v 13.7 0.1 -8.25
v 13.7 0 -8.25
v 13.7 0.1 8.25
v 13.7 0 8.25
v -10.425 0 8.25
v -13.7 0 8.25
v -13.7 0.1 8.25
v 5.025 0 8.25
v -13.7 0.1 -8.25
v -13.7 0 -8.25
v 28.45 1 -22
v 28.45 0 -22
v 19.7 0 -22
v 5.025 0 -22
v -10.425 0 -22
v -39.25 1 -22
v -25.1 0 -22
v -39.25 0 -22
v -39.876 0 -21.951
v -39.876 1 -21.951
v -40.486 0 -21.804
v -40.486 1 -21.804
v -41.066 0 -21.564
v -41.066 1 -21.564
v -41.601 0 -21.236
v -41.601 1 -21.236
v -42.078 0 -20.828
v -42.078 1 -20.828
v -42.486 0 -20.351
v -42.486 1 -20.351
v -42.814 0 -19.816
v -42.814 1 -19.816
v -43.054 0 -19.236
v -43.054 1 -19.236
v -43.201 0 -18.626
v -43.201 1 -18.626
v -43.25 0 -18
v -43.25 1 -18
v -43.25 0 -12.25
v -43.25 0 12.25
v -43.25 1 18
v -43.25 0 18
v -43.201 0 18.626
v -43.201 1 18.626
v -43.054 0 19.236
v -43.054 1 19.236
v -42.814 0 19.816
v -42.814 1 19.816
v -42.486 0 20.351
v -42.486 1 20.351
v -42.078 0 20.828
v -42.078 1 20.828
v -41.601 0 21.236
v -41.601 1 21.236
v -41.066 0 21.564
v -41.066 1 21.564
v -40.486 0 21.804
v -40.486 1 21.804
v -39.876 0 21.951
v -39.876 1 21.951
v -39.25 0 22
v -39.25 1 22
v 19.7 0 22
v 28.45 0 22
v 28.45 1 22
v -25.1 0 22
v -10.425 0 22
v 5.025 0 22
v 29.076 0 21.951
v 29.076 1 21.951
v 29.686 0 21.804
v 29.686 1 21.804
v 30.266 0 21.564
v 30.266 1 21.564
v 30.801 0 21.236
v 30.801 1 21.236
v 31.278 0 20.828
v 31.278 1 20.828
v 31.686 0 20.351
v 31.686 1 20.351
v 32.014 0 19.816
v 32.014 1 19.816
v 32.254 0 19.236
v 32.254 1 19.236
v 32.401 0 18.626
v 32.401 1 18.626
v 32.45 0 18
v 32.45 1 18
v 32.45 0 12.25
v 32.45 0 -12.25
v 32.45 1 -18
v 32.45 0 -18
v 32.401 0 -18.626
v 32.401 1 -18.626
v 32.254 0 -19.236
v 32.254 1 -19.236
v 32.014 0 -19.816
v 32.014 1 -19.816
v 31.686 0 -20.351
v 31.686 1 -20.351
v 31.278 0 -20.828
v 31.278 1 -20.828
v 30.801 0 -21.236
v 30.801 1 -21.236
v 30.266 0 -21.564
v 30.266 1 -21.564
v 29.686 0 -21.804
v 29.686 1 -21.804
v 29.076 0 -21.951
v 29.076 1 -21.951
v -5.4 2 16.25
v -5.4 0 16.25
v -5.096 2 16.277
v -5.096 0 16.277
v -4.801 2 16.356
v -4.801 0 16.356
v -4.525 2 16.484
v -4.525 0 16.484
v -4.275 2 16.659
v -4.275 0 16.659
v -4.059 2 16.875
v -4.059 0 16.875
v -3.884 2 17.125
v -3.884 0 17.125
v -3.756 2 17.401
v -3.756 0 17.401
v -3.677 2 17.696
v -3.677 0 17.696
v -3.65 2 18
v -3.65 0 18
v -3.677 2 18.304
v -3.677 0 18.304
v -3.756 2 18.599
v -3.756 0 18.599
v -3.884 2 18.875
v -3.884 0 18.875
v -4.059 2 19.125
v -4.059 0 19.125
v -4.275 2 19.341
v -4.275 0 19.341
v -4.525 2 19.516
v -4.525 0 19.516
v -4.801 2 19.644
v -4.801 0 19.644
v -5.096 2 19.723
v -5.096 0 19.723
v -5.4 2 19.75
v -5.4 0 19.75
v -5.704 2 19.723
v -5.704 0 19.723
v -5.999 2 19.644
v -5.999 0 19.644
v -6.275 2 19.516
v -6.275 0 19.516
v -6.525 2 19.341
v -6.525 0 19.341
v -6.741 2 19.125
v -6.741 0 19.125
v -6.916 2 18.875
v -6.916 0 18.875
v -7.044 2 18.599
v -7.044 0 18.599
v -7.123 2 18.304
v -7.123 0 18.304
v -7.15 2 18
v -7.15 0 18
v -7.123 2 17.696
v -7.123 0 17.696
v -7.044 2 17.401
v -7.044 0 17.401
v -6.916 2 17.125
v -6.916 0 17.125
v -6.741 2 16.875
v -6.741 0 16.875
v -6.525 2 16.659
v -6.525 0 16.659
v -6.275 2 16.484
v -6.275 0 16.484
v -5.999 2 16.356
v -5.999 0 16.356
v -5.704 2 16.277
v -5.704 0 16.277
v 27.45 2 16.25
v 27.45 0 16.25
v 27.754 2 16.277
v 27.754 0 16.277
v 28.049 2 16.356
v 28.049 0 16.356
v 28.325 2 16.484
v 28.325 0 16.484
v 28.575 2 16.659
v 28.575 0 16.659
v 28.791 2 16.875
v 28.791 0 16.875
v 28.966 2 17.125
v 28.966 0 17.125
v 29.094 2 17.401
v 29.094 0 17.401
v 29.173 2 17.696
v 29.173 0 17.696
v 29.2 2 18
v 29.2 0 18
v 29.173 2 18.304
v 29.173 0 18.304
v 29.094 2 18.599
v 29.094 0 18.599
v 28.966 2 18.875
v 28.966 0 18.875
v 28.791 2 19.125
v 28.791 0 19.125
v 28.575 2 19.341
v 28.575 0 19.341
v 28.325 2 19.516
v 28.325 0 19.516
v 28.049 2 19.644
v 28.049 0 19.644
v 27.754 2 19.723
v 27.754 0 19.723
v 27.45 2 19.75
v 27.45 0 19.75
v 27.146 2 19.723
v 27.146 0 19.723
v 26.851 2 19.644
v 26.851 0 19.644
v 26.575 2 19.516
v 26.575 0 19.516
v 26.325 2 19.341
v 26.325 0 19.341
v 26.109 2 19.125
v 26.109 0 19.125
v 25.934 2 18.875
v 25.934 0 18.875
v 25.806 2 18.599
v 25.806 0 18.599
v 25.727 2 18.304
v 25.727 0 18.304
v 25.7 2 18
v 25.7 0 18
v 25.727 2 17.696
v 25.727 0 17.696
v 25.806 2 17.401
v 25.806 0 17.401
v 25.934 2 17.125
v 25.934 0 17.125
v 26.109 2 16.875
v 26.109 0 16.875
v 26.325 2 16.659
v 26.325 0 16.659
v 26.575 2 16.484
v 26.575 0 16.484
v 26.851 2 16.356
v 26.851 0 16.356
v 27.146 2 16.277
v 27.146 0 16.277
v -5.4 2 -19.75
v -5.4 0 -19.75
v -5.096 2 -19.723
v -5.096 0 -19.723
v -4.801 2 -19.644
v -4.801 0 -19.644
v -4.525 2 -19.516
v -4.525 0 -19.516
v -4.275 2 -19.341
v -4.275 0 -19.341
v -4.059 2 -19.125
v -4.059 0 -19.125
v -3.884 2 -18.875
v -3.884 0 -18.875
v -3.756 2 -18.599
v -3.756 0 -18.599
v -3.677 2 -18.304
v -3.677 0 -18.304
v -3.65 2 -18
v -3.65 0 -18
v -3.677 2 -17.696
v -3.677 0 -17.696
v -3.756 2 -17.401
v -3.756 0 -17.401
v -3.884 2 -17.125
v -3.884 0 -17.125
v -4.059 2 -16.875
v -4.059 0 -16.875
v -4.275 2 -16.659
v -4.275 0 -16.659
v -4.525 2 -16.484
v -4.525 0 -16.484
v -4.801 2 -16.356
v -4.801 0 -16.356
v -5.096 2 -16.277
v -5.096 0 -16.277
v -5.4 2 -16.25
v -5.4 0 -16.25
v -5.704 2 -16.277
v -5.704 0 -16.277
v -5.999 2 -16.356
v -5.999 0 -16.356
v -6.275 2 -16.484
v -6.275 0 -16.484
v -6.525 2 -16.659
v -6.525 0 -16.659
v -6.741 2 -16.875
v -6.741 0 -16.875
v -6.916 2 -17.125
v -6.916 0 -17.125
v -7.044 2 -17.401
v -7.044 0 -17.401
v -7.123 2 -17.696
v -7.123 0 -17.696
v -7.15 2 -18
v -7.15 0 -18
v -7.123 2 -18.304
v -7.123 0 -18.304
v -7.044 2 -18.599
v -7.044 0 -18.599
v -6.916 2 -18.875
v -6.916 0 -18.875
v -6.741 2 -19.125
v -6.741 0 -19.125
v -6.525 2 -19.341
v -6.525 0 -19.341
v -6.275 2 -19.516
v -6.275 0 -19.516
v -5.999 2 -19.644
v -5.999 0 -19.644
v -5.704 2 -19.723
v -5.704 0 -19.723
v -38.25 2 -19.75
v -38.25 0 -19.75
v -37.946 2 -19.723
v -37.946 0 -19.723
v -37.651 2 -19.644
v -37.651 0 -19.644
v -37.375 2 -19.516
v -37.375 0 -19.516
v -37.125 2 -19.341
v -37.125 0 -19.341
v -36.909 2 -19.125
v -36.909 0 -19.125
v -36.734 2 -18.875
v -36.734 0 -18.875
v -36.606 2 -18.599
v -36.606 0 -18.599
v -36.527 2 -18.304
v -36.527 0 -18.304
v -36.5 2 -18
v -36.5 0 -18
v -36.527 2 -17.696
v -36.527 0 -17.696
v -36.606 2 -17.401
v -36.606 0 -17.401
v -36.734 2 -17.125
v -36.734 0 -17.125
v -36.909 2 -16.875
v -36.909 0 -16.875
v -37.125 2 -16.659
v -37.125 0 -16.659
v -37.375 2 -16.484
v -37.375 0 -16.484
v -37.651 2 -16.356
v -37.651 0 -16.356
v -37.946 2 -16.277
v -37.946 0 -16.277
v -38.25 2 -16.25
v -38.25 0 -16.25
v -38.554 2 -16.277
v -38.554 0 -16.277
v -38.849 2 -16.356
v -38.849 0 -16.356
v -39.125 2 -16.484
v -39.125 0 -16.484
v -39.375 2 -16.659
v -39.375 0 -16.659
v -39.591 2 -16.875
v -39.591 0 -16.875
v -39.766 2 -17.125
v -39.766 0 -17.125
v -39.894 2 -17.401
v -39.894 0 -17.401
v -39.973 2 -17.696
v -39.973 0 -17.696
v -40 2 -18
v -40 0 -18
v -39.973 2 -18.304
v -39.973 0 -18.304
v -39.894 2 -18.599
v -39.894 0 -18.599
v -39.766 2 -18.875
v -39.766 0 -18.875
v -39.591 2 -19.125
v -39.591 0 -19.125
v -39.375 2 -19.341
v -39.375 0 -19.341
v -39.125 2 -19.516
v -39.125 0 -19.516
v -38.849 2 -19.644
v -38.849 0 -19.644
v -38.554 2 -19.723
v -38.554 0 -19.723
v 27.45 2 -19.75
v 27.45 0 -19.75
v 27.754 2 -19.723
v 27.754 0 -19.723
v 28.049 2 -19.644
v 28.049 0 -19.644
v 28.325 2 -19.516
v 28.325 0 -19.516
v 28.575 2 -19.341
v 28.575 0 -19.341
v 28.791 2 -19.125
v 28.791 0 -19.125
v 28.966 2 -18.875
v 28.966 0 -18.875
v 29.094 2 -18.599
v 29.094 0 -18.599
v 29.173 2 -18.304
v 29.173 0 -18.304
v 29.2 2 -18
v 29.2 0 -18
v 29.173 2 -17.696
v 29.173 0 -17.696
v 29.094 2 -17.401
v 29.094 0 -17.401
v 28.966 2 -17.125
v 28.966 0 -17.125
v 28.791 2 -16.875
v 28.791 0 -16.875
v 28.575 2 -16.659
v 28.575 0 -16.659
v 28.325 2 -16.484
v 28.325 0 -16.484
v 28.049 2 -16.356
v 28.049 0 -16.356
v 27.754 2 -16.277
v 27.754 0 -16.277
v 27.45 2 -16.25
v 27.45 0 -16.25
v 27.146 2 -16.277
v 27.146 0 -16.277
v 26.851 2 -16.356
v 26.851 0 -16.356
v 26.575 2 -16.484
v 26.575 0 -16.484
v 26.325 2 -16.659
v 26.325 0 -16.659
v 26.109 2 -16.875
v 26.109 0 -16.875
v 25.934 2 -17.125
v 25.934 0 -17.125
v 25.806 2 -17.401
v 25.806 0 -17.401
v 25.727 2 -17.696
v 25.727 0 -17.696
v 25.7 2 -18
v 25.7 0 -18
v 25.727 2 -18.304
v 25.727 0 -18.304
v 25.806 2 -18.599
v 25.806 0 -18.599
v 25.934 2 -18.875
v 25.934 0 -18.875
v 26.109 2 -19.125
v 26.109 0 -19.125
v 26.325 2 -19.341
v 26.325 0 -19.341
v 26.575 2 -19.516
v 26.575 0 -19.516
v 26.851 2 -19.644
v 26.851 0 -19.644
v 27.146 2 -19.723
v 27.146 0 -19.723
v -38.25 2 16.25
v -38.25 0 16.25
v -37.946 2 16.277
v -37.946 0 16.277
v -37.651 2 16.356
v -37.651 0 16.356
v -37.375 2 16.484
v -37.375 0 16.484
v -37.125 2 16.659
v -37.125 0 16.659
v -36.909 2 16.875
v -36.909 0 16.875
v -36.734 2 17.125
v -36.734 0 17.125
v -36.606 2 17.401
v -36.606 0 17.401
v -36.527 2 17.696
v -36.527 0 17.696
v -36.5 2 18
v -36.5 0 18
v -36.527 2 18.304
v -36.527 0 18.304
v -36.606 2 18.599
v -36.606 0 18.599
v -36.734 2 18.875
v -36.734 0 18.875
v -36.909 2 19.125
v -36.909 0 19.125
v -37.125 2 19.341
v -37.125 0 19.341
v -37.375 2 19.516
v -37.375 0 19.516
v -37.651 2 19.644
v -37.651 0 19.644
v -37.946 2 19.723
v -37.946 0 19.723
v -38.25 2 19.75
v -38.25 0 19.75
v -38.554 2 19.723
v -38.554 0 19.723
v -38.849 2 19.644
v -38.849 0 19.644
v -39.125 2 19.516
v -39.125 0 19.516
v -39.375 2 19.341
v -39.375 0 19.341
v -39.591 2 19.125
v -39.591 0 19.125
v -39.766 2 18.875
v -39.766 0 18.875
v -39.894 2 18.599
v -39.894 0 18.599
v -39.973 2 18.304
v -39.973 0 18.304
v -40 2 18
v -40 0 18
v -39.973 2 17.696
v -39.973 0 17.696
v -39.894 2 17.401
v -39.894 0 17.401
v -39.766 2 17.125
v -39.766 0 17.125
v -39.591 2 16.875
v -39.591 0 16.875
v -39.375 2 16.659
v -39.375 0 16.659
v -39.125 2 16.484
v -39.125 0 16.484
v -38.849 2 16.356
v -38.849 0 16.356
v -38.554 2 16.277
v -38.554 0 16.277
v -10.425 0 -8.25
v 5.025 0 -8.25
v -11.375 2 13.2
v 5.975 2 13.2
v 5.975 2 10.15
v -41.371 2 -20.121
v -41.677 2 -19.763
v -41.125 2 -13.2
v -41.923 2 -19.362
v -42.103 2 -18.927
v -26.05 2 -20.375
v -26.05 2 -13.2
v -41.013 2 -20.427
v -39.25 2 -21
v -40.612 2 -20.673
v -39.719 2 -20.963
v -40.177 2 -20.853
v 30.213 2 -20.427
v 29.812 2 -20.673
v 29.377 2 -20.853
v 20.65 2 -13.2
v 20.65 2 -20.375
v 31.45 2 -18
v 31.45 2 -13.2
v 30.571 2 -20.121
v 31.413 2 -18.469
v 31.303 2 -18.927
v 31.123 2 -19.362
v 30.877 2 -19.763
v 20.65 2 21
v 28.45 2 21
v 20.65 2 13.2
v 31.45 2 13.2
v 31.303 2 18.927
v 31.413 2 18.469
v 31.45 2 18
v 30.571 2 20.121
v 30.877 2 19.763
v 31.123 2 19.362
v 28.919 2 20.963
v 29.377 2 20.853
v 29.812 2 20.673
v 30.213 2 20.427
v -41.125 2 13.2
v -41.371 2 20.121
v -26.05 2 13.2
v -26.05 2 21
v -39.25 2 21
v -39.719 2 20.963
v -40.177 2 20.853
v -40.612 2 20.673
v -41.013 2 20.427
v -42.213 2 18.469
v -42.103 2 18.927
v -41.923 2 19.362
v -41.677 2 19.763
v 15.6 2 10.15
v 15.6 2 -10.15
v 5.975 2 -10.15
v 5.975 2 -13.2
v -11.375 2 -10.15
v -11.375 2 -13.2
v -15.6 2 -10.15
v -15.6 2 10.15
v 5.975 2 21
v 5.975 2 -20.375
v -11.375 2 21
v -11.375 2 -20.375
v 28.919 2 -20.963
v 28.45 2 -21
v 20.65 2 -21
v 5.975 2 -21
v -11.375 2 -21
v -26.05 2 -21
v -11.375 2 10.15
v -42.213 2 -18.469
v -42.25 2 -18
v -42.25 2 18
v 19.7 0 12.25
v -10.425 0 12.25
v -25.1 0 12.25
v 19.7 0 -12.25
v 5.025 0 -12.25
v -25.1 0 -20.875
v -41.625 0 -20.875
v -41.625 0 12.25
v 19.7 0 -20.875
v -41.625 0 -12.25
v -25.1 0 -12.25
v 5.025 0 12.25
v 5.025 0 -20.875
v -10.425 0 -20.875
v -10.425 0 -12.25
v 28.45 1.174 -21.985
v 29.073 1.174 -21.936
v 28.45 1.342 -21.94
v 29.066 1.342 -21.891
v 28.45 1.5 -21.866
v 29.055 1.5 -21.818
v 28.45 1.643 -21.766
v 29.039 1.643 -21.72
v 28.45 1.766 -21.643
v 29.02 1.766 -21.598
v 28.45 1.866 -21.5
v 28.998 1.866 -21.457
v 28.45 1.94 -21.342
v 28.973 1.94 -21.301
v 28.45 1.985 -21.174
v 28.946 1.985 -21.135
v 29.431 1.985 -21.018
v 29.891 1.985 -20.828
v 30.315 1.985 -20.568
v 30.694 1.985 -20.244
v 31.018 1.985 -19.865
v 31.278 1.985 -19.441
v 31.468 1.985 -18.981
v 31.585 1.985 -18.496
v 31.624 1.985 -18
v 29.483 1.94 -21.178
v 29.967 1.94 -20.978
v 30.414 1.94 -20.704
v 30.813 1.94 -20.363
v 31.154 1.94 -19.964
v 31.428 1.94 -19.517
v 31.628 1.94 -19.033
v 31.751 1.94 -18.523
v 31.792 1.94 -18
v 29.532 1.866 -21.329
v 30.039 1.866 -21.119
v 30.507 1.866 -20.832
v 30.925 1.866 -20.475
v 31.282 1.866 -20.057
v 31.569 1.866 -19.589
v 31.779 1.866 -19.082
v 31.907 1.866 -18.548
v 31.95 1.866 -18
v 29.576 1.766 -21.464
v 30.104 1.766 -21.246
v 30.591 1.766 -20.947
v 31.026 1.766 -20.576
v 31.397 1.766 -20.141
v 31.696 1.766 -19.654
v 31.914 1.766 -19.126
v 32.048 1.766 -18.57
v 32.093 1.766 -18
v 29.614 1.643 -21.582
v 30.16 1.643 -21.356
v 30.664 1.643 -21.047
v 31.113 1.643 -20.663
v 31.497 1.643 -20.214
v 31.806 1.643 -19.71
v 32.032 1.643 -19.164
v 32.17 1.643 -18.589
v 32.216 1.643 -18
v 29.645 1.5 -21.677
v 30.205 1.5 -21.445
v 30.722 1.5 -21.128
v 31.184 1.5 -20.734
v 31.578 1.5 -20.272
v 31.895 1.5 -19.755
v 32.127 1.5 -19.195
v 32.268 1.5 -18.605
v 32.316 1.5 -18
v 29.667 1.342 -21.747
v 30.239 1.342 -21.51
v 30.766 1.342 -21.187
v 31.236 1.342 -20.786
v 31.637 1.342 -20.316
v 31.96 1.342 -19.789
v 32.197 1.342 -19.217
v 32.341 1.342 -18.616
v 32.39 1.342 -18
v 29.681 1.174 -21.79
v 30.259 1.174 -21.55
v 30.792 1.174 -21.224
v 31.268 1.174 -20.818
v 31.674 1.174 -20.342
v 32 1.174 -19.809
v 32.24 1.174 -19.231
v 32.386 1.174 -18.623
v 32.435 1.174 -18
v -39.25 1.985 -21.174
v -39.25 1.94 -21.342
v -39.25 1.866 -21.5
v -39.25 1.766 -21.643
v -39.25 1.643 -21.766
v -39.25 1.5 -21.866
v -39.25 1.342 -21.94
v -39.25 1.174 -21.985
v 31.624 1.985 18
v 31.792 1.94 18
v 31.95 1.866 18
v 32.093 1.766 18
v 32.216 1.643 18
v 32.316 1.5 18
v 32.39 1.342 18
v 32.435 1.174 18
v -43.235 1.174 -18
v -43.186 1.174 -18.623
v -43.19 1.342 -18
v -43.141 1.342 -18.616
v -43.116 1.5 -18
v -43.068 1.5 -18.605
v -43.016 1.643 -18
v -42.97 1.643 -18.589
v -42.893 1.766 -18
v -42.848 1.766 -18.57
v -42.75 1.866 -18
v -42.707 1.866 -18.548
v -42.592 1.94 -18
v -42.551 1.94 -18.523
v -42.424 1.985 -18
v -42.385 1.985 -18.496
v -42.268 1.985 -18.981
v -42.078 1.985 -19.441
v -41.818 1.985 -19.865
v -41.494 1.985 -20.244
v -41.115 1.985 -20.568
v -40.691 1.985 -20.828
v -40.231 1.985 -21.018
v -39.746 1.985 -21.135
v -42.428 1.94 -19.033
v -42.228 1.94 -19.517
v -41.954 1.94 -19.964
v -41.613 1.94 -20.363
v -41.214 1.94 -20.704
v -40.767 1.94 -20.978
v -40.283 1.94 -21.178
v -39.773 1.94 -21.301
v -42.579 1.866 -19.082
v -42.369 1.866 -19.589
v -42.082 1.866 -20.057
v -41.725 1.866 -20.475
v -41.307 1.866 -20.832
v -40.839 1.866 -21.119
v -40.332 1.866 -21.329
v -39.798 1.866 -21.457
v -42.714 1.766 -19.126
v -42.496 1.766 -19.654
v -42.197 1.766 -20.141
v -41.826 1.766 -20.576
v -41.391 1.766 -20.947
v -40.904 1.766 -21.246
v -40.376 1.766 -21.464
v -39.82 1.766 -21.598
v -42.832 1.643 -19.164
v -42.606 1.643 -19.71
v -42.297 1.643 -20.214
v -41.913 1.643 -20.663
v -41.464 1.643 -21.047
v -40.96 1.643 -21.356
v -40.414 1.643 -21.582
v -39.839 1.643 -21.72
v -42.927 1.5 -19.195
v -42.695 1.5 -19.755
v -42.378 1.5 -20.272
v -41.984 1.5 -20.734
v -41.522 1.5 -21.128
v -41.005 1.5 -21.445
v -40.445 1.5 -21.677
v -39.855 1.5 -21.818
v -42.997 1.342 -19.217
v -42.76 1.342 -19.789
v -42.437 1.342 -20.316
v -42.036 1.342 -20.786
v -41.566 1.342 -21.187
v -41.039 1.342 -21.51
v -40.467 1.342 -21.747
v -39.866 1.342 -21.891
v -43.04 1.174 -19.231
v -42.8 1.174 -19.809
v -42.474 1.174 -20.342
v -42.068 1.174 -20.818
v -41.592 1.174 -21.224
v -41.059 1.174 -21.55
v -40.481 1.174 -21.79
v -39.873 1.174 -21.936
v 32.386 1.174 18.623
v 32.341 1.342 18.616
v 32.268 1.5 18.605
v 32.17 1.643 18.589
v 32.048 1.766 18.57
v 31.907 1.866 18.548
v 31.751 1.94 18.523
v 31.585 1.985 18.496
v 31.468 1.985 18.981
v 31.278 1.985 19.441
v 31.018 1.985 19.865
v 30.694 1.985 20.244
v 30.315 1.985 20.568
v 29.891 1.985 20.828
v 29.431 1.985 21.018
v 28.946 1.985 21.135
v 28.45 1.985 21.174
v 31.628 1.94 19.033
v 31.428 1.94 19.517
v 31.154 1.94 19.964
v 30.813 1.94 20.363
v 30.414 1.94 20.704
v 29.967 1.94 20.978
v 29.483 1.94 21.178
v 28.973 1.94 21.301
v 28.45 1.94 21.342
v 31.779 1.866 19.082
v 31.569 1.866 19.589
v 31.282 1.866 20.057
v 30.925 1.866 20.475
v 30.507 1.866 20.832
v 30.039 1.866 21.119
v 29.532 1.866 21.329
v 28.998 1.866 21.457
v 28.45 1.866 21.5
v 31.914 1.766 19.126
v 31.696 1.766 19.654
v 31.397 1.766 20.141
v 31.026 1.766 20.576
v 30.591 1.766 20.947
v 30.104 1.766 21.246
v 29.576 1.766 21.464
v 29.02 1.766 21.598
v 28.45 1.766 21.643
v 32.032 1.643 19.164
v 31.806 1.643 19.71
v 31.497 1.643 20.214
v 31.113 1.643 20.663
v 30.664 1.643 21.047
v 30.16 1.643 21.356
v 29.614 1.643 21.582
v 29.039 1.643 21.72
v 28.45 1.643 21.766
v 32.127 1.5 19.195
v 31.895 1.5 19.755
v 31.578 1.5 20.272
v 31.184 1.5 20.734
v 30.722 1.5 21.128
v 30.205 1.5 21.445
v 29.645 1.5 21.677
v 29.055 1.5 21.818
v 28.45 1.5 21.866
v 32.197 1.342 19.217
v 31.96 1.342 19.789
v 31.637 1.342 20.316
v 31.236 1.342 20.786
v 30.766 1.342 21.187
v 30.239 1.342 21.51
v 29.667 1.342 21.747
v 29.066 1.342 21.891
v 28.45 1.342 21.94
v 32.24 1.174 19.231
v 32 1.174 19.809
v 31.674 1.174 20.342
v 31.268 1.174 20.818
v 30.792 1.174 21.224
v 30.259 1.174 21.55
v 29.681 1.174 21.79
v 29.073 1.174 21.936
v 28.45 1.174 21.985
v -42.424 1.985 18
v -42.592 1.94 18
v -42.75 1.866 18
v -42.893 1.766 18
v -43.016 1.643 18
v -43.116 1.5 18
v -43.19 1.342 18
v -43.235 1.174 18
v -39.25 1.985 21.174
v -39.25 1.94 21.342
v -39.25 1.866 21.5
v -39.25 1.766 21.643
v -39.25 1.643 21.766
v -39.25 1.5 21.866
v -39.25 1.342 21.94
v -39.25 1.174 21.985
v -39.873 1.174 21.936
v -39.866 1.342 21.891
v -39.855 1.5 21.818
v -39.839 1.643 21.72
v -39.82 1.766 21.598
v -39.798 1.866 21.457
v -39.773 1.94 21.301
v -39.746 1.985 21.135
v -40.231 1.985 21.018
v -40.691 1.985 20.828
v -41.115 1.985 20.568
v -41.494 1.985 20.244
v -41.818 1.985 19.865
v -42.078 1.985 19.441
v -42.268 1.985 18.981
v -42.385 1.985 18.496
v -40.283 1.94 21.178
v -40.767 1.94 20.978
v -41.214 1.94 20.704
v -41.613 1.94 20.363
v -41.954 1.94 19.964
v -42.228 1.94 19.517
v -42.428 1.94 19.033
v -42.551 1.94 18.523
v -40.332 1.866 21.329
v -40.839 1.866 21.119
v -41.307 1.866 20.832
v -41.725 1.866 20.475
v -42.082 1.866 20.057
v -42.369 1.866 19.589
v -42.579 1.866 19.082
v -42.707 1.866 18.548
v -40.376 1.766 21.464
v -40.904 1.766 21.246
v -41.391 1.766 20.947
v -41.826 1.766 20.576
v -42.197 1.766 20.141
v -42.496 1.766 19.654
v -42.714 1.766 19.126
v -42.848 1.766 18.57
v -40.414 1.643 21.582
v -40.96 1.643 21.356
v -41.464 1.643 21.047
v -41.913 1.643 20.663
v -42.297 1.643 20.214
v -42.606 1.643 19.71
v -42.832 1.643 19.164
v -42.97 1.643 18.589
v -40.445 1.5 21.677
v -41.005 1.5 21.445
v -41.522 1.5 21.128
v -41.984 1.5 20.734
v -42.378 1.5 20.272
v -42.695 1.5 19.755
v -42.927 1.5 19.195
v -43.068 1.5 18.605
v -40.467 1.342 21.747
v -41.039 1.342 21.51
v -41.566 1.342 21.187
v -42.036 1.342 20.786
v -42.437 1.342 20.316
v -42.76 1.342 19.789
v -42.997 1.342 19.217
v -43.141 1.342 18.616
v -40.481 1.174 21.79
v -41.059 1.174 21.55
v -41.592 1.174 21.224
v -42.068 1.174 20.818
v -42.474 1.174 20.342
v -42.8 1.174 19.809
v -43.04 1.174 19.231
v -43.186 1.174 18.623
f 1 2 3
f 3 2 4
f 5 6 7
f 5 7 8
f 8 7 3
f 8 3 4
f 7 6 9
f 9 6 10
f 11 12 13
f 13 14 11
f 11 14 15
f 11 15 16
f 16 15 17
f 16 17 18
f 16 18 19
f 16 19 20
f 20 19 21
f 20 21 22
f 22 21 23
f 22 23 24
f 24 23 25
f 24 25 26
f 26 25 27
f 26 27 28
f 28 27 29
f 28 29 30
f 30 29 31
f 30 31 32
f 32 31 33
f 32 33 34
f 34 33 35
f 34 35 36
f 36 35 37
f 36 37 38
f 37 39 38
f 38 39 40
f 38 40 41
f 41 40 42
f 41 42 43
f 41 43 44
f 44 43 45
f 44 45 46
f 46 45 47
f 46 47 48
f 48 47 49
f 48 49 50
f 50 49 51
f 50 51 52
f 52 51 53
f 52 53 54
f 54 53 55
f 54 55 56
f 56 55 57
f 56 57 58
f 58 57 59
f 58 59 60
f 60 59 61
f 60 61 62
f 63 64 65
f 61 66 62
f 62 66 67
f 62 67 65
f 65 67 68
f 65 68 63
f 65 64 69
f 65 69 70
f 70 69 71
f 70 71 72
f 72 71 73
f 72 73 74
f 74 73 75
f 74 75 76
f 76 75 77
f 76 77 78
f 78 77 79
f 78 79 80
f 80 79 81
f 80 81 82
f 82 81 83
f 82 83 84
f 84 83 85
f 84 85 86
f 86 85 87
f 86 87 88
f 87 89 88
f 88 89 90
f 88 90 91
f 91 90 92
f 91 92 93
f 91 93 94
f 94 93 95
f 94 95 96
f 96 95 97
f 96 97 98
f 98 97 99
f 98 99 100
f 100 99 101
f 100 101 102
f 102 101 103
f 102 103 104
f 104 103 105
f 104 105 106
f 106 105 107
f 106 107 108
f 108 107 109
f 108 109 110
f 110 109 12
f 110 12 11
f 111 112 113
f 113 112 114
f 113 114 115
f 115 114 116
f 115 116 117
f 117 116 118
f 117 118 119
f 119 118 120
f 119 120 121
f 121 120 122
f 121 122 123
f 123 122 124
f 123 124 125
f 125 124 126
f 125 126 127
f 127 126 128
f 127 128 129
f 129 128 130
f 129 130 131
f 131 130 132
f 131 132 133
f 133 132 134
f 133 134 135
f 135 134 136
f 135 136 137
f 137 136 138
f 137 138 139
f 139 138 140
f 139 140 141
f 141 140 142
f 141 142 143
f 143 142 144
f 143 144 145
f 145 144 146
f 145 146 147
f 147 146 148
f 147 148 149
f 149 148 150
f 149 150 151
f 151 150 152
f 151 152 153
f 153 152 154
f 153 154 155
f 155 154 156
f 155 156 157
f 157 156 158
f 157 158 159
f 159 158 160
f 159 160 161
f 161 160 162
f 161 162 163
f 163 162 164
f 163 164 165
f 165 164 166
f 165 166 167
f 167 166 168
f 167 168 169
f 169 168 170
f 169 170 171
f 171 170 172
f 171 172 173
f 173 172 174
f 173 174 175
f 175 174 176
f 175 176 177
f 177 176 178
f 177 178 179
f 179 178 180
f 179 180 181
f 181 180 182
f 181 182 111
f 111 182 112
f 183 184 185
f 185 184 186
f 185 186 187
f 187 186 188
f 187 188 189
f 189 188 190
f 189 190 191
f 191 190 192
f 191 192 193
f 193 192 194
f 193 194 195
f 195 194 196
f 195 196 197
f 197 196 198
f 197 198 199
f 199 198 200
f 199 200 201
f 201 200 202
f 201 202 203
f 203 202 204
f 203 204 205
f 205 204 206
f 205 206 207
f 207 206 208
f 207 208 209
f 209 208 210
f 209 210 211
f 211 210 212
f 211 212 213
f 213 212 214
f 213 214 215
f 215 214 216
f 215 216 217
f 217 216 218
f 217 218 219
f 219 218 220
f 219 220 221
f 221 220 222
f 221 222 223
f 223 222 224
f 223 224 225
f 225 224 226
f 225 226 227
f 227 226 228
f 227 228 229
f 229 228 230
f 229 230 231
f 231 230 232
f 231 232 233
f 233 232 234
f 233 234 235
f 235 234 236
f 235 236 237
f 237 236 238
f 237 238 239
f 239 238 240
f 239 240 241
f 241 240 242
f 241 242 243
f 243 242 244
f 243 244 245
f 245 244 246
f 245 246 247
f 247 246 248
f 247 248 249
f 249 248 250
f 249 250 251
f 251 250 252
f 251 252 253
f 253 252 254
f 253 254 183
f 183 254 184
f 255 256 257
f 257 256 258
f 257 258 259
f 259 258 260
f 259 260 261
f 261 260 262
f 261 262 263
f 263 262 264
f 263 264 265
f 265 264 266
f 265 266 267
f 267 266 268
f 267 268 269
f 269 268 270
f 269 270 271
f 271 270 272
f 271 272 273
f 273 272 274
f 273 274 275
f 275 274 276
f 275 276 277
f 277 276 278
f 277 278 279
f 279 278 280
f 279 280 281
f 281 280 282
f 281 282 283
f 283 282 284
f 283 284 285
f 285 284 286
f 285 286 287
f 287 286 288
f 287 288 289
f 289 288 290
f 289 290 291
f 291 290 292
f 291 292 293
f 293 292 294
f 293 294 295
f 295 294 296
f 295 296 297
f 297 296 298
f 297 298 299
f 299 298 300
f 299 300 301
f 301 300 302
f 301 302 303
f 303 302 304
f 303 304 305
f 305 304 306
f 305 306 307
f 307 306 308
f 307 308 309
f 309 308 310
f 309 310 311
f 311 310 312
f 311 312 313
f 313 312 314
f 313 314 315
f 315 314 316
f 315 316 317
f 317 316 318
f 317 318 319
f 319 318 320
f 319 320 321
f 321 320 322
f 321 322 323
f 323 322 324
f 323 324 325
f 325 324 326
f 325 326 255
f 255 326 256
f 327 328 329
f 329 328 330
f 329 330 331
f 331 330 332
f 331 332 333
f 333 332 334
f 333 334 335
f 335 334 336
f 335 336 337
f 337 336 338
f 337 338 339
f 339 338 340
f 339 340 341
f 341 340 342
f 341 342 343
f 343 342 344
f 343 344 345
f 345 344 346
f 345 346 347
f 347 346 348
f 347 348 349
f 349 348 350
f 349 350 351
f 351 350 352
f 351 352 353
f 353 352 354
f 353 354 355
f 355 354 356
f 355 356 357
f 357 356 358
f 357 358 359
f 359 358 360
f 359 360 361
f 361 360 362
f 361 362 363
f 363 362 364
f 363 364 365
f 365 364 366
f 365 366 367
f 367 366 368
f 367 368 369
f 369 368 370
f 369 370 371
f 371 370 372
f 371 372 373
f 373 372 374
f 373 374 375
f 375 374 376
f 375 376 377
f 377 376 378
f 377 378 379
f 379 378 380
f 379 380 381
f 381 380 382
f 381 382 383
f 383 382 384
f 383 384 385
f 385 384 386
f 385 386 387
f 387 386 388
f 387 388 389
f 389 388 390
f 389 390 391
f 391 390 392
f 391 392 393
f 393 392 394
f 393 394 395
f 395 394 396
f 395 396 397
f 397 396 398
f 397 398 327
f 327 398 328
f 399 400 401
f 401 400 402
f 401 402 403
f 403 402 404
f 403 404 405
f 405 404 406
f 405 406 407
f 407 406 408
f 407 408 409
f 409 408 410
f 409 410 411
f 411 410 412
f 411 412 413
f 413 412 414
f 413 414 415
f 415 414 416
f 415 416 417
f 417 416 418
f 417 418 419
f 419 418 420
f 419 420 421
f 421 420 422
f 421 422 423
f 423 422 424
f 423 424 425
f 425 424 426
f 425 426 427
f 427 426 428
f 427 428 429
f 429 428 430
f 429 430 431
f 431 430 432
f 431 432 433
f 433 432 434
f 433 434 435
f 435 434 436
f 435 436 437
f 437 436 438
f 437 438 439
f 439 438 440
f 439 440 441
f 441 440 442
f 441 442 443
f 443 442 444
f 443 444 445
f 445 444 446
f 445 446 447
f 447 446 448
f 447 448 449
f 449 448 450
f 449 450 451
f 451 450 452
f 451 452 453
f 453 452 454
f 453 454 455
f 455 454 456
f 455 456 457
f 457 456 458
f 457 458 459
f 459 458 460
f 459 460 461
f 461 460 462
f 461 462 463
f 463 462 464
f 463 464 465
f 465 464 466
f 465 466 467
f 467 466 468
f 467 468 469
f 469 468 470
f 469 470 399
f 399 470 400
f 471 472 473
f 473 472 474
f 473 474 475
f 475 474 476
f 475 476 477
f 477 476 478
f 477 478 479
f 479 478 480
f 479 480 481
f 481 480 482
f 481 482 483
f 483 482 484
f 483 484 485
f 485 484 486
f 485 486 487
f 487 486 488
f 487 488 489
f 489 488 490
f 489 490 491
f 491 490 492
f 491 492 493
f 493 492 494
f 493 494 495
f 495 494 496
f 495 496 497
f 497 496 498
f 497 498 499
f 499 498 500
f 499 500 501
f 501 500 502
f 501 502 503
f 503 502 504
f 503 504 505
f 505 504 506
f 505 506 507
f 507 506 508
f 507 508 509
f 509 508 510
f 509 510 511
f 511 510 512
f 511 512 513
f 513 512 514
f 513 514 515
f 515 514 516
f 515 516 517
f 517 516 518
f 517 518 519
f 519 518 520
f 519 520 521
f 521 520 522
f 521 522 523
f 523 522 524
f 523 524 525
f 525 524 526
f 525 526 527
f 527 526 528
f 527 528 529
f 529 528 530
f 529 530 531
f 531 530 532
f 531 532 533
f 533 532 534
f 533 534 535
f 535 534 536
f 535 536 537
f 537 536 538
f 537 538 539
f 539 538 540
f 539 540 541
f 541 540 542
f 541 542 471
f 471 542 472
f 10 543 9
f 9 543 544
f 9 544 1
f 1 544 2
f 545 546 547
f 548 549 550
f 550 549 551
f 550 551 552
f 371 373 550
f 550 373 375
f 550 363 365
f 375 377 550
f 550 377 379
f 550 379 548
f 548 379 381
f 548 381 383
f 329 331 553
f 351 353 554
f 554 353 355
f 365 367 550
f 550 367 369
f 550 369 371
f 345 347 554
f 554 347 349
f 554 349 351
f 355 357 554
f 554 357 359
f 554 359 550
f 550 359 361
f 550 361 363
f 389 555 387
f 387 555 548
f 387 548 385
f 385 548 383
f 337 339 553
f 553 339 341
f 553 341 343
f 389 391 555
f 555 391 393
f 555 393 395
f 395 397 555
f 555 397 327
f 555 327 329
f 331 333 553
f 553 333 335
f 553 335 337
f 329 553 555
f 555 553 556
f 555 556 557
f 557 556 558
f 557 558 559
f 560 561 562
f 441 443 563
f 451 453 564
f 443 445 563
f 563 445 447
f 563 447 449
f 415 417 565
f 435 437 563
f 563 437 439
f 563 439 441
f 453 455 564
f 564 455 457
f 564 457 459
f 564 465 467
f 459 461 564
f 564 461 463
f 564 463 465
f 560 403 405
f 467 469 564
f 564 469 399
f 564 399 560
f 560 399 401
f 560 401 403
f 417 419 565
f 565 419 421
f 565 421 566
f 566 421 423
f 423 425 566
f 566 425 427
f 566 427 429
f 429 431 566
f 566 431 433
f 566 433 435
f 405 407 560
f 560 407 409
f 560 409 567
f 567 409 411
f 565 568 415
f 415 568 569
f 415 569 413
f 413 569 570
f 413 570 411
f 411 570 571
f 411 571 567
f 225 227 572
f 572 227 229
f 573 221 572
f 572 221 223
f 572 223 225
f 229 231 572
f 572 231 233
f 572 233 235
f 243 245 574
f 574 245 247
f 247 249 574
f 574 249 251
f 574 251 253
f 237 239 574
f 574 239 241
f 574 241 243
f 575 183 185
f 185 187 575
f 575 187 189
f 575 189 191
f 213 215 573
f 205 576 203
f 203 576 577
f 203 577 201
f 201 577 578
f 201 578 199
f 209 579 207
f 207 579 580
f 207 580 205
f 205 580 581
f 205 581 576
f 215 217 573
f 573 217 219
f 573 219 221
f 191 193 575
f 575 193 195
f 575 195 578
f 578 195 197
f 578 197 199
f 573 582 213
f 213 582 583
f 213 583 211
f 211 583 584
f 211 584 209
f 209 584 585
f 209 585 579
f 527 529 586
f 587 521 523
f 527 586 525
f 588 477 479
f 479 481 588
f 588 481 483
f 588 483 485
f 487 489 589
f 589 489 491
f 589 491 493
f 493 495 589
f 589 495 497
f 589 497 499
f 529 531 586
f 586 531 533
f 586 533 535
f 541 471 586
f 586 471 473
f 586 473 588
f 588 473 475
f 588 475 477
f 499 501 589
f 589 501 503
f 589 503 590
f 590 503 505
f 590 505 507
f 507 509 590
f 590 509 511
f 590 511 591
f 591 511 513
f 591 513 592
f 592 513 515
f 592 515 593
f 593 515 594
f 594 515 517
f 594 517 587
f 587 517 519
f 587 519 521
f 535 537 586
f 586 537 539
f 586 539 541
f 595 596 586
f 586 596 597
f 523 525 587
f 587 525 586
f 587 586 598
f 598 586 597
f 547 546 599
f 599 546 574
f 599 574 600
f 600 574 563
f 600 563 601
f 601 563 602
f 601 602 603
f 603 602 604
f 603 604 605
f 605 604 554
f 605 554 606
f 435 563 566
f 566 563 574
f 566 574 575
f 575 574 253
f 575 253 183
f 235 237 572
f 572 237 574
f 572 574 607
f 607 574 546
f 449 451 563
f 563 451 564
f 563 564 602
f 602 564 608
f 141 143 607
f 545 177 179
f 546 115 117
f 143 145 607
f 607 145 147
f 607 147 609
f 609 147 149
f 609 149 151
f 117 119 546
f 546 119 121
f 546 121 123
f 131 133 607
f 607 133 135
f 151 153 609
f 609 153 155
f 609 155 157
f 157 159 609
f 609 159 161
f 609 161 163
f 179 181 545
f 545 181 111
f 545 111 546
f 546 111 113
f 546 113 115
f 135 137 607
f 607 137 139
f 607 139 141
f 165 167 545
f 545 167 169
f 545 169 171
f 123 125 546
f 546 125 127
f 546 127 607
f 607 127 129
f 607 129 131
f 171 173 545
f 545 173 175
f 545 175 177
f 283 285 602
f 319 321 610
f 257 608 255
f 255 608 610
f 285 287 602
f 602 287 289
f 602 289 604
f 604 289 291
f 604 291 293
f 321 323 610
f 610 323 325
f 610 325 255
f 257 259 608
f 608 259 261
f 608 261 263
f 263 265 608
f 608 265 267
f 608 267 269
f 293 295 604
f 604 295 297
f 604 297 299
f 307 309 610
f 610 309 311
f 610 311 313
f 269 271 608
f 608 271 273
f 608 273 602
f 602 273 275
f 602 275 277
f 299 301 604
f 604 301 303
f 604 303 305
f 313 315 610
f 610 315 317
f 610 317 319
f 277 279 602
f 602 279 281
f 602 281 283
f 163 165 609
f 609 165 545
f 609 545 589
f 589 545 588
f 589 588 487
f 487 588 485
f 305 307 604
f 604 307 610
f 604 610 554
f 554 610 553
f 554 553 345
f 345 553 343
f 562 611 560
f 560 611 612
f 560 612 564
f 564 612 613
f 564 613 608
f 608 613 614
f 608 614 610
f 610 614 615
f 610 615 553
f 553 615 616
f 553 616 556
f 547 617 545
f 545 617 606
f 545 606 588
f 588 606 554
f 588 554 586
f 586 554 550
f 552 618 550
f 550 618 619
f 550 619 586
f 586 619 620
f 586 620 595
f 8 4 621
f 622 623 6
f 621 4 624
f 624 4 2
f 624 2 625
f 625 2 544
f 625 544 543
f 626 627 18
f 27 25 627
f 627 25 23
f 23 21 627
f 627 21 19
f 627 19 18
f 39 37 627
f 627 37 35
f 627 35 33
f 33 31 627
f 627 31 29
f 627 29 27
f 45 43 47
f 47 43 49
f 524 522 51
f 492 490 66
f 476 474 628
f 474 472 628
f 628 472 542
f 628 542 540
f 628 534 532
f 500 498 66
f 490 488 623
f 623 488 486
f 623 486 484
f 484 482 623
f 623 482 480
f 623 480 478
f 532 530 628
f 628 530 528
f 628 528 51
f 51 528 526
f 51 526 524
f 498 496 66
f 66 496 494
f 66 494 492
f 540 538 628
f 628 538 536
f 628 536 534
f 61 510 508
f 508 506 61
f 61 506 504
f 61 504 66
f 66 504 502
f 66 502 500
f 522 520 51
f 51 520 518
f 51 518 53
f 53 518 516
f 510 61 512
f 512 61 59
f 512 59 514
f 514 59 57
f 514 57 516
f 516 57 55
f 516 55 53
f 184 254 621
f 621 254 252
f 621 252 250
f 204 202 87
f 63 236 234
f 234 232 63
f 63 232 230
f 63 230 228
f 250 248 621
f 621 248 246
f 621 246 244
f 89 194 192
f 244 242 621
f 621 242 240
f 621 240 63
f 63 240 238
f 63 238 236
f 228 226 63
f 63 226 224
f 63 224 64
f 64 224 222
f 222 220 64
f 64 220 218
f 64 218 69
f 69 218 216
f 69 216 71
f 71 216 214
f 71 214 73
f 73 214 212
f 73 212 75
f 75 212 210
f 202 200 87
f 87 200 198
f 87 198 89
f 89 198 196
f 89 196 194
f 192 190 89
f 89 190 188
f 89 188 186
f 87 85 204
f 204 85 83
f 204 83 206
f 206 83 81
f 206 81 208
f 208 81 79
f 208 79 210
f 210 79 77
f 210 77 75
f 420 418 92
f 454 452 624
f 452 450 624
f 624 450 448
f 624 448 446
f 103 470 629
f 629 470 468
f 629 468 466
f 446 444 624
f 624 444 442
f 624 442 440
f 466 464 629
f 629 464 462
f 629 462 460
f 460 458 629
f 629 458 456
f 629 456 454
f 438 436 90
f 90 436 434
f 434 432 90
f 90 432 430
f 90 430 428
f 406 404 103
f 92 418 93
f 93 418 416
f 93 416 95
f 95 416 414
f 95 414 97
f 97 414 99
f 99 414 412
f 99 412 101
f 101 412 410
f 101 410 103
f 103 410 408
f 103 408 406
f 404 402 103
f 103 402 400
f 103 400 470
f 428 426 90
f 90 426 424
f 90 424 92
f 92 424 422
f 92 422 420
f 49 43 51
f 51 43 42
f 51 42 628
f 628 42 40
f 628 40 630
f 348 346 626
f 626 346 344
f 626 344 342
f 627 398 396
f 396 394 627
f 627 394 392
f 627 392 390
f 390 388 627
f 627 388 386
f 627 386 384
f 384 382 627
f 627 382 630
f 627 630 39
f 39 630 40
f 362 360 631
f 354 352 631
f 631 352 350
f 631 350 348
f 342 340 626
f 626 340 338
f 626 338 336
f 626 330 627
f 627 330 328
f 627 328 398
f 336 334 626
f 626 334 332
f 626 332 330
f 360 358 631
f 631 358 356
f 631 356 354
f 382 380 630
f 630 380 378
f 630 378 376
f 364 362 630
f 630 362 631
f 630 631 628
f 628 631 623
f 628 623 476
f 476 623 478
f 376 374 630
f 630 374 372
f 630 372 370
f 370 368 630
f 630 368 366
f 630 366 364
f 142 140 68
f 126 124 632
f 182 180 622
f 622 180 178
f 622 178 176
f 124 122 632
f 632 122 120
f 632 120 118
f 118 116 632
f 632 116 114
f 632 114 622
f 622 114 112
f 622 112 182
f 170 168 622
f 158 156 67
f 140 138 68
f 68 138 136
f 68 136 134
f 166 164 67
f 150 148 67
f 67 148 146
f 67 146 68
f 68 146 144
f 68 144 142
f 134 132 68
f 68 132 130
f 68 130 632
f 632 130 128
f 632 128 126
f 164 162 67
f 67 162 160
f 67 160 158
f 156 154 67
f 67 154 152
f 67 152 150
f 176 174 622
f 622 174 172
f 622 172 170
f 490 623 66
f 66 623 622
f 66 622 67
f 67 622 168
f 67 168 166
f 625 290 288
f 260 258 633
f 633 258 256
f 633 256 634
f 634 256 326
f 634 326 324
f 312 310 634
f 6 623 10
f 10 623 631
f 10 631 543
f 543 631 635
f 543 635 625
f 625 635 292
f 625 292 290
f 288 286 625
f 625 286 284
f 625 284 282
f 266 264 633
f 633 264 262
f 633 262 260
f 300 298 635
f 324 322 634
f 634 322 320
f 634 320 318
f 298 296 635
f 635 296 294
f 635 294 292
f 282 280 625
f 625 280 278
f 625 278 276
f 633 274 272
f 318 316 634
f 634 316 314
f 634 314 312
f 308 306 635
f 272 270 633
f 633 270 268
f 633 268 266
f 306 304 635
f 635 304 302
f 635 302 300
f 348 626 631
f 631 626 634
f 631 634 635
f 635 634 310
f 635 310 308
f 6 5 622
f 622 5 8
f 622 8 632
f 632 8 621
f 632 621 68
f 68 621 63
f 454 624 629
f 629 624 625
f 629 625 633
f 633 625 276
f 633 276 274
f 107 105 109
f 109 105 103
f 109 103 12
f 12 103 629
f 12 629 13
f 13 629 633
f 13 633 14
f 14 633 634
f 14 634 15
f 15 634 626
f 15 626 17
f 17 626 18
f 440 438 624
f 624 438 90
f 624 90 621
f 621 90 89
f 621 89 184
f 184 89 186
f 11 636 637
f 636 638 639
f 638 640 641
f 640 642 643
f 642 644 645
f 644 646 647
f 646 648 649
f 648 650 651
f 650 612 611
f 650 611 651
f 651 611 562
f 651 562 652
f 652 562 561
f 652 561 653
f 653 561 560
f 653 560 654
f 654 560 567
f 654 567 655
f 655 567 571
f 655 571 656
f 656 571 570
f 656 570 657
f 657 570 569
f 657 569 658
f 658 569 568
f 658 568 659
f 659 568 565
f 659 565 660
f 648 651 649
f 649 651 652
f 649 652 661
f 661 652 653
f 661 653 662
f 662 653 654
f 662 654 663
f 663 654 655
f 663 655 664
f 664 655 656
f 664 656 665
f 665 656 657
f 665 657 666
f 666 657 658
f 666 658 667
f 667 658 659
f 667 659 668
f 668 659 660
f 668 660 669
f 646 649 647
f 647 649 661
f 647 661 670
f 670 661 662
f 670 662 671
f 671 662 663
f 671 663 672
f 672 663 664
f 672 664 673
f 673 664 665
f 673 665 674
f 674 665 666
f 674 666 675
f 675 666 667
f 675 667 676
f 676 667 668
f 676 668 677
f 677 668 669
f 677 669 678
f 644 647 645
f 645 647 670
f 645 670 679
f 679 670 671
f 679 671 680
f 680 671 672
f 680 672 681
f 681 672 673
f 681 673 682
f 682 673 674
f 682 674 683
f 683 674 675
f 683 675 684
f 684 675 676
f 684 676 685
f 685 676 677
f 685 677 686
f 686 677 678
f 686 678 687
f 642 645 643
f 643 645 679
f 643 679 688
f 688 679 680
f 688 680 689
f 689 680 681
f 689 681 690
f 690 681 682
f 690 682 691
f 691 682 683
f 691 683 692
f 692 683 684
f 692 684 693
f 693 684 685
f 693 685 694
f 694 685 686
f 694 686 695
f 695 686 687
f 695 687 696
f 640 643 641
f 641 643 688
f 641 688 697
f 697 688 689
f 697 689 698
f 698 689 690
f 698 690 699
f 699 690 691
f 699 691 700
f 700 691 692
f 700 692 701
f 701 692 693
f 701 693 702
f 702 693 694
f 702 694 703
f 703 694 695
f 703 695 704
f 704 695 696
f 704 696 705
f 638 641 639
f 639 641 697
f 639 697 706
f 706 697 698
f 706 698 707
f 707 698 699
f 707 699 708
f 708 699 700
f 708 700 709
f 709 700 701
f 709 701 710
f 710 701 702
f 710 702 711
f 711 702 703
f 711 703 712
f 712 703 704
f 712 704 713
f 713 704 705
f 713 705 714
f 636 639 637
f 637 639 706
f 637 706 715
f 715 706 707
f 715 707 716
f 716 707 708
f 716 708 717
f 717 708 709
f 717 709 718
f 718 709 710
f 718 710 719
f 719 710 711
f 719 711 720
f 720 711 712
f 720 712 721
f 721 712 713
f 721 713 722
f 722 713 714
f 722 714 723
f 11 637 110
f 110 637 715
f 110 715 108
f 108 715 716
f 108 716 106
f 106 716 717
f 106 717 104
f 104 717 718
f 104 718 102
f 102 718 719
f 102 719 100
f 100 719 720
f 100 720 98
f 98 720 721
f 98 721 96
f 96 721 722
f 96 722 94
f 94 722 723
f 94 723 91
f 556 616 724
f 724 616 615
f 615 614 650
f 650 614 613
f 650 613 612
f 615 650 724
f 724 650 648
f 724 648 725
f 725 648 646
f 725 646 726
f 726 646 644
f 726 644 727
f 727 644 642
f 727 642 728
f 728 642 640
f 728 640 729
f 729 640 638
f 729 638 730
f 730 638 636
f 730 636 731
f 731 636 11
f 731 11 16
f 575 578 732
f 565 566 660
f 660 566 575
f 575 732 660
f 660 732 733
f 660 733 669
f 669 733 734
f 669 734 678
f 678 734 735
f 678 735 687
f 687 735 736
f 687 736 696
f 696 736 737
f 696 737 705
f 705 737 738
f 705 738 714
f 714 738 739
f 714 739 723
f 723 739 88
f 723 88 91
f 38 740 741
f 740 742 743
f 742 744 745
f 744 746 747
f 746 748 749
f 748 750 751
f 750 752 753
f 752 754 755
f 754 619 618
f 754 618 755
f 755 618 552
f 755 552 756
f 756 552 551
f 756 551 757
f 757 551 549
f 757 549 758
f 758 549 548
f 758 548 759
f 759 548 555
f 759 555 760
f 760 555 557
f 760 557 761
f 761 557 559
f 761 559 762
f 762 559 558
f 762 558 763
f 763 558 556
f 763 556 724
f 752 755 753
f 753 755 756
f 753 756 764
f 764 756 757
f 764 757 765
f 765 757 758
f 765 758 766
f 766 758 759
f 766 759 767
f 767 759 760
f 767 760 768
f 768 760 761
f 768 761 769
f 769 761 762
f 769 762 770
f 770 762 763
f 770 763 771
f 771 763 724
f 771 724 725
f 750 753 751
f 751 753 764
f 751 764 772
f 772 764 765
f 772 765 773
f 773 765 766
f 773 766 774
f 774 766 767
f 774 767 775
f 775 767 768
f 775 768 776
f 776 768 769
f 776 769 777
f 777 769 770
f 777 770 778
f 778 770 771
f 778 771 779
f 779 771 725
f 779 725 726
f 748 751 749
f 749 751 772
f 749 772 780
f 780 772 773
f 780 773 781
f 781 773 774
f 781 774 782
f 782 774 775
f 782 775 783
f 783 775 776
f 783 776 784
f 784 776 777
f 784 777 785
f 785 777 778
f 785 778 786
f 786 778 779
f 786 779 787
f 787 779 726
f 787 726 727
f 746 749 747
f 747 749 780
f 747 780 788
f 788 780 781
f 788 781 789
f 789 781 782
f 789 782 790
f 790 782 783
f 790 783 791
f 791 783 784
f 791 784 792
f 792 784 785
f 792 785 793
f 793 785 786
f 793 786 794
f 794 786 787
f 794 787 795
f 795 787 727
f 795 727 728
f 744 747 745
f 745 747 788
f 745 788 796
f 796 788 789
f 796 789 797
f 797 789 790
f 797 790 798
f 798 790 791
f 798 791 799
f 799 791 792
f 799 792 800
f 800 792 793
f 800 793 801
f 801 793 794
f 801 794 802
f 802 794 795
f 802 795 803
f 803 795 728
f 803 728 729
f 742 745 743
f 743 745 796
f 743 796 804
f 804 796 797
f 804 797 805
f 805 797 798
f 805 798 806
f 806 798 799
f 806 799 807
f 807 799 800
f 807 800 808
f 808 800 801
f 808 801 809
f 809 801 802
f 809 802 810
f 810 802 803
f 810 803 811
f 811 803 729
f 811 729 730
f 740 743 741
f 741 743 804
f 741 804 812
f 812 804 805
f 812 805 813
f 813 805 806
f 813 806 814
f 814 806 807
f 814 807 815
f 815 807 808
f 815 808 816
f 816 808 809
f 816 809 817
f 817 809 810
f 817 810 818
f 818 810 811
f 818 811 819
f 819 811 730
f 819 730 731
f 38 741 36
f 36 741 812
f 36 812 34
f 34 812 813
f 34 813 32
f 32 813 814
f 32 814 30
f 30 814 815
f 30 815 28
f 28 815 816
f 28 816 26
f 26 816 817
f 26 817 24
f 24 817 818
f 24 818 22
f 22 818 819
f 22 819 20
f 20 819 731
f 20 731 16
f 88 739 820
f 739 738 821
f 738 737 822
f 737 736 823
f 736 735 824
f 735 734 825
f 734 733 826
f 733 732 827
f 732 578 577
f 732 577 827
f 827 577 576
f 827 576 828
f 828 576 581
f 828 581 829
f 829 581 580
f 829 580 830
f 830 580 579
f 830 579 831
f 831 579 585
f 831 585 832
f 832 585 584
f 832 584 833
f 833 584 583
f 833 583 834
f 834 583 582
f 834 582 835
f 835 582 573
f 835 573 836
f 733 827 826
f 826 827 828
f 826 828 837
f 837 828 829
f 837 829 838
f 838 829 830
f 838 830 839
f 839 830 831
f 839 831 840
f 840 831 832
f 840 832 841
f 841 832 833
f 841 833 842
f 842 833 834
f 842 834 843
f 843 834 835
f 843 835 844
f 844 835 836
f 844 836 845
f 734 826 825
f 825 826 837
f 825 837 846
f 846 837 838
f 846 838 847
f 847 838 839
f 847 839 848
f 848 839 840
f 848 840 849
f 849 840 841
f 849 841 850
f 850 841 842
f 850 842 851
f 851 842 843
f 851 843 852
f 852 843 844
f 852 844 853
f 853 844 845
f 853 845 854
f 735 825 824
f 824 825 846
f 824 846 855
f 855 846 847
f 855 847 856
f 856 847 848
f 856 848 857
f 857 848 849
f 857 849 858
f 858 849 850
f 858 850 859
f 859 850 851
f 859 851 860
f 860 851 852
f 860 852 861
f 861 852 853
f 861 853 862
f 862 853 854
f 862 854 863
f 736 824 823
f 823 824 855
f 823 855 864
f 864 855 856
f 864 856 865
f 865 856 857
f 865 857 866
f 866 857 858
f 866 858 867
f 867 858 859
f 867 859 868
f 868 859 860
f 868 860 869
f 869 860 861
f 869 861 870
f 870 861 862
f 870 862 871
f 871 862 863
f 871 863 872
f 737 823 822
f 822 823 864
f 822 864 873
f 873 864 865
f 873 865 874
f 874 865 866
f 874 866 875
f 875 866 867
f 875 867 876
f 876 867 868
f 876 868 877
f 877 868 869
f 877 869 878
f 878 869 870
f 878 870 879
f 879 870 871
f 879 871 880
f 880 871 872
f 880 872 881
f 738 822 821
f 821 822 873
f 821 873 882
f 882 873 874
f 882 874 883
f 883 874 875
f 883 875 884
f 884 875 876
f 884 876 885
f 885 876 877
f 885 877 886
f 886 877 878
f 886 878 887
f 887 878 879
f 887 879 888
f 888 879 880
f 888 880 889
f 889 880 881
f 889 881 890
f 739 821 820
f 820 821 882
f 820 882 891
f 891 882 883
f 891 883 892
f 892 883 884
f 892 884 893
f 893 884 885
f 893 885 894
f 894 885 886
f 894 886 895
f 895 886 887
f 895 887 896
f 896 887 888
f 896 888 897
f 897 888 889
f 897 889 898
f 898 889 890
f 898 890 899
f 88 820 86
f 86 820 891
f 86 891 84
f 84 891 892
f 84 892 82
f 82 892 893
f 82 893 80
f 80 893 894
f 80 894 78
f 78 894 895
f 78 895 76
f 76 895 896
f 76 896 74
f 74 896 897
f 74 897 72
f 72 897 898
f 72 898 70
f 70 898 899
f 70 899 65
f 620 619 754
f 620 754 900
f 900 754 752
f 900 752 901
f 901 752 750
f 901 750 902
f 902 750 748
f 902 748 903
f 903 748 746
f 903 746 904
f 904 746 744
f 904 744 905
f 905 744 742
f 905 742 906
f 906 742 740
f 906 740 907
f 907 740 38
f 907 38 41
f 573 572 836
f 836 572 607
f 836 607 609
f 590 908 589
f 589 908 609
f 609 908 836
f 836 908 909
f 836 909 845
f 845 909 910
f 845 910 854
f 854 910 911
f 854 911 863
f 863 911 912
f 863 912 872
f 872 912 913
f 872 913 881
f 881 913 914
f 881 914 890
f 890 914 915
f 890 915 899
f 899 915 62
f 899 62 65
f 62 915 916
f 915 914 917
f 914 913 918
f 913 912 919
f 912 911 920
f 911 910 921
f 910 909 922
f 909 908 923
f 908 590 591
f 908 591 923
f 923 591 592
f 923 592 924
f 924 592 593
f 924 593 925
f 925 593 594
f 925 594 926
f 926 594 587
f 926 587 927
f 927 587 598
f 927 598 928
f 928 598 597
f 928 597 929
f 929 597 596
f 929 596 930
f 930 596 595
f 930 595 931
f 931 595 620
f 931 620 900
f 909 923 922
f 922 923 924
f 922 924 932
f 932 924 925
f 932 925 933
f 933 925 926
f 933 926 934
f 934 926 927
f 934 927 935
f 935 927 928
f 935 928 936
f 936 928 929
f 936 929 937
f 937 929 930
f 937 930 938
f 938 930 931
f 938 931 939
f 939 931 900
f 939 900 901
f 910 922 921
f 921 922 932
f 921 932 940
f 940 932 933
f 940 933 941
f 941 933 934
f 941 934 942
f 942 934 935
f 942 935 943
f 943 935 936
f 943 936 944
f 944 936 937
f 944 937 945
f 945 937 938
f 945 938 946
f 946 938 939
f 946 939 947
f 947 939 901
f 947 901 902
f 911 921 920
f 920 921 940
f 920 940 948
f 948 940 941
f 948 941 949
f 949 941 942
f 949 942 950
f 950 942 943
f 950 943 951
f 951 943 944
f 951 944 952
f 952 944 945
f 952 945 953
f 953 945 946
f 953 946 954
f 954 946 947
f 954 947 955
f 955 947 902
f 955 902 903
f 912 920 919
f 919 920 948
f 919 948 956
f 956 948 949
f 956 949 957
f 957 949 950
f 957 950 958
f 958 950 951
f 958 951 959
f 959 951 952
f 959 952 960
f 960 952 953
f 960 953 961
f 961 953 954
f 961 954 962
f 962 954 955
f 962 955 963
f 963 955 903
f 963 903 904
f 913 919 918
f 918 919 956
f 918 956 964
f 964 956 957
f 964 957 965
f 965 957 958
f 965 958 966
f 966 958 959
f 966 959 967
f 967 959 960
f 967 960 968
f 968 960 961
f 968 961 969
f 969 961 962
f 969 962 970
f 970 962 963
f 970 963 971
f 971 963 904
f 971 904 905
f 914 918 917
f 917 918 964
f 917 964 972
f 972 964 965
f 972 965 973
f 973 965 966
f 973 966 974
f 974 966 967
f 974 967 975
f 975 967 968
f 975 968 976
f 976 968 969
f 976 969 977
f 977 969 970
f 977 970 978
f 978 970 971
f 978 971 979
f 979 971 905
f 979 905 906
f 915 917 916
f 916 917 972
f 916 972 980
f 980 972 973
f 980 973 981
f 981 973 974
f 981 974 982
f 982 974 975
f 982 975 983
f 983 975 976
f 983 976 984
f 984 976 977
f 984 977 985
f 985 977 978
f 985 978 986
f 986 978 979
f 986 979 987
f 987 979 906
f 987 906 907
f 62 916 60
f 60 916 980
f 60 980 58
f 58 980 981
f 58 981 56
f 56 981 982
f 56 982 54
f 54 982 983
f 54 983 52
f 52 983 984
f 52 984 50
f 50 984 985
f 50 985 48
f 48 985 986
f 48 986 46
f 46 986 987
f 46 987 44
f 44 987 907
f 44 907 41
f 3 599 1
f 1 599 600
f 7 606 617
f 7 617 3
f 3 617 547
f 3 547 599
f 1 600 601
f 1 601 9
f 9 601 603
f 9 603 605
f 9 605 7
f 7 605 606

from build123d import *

# Parameters (mm, degrees)
SKETCH1_W           = 27.4
SKETCH1_H           = 16.5
SKETCH1_R           = 1.75
BOSS_EXTRUDE1_DEPTH = 2
SKETCH1_3_W         = 31.5
SKETCH1_3_H         = 20.5
SKETCH1_3_W_2       = 27.4
SKETCH1_3_H_2       = 16.5
BOSS_EXTRUDE2_DEPTH = 1
FILLET1_R           = 1
CHAMFER1_SIZE       = 1.9


with BuildPart() as part:
    # Sketch1 → Boss-Extrude1 (new body)
    with BuildSketch(Plane(origin=(0, 0, 0), x_dir=(1, 0, 0), z_dir=(0, 1, 0))):
        with BuildLine():
            Line((28.45, 22), (-39.25, 22))
            ThreePointArc((-39.25, 22), (-42.078427125, 20.828427125), (-43.25, 18))
            Line((-43.25, 18), (-43.25, -18))
            ThreePointArc((-43.25, -18), (-42.078427125, -20.828427125), (-39.25, -22))
            Line((-39.25, -22), (28.45, -22))
            ThreePointArc((28.45, -22), (31.278427125, -20.828427125), (32.45, -18))
            Line((32.45, -18), (32.45, 18))
            ThreePointArc((32.45, 18), (31.278427125, 20.828427125), (28.45, 22))
        make_face()
        Rectangle(SKETCH1_W, SKETCH1_H, mode=Mode.SUBTRACT)
        with Locations((-38.25, -18)):
            Circle(SKETCH1_R, mode=Mode.SUBTRACT)
        with Locations((-5.4, -18)):
            Circle(SKETCH1_R, mode=Mode.SUBTRACT)
        with Locations((27.45, -18)):
            Circle(SKETCH1_R, mode=Mode.SUBTRACT)
        with Locations((-38.25, 18)):
            Circle(SKETCH1_R, mode=Mode.SUBTRACT)
        with Locations((-5.4, 18)):
            Circle(SKETCH1_R, mode=Mode.SUBTRACT)
        with Locations((27.45, 18)):
            Circle(SKETCH1_R, mode=Mode.SUBTRACT)
    extrude(amount=BOSS_EXTRUDE1_DEPTH)

    # Sketch1<3> → Boss-Extrude2 (add)
    with BuildSketch(Plane(origin=(0, 0, 0), x_dir=(1, 0, 0), z_dir=(0, 1, 0))):
        Rectangle(SKETCH1_3_W, SKETCH1_3_H)
        Rectangle(SKETCH1_3_W_2, SKETCH1_3_H_2, mode=Mode.SUBTRACT)
    extrude(amount=BOSS_EXTRUDE2_DEPTH)

    # Fillet1
    fillet1_edges = [part.edges().sort_by_distance(p)[0] for p in [
        (-42.078427125, 2, 20.828427125),
        (-43.25, 2, 0),
        (-42.078427125, 2, -20.828427125),
        (-5.4, 2, -22),
        (31.278427125, 2, -20.828427125),
        (32.45, 2, 0),
        (31.278427125, 2, 20.828427125),
        (-5.4, 2, 22),
    ]]
    fillet(fillet1_edges, radius=FILLET1_R)

    # Chamfer1
    chamfer1_edges = [part.edges().sort_by_distance(p)[0] for p in [
        (-13.7, 2, 0),
        (0, 2, 8.25),
        (13.7, 2, 0),
        (0, 2, -8.25),
    ]]
    chamfer(chamfer1_edges, length=CHAMFER1_SIZE)


solid = part.part
